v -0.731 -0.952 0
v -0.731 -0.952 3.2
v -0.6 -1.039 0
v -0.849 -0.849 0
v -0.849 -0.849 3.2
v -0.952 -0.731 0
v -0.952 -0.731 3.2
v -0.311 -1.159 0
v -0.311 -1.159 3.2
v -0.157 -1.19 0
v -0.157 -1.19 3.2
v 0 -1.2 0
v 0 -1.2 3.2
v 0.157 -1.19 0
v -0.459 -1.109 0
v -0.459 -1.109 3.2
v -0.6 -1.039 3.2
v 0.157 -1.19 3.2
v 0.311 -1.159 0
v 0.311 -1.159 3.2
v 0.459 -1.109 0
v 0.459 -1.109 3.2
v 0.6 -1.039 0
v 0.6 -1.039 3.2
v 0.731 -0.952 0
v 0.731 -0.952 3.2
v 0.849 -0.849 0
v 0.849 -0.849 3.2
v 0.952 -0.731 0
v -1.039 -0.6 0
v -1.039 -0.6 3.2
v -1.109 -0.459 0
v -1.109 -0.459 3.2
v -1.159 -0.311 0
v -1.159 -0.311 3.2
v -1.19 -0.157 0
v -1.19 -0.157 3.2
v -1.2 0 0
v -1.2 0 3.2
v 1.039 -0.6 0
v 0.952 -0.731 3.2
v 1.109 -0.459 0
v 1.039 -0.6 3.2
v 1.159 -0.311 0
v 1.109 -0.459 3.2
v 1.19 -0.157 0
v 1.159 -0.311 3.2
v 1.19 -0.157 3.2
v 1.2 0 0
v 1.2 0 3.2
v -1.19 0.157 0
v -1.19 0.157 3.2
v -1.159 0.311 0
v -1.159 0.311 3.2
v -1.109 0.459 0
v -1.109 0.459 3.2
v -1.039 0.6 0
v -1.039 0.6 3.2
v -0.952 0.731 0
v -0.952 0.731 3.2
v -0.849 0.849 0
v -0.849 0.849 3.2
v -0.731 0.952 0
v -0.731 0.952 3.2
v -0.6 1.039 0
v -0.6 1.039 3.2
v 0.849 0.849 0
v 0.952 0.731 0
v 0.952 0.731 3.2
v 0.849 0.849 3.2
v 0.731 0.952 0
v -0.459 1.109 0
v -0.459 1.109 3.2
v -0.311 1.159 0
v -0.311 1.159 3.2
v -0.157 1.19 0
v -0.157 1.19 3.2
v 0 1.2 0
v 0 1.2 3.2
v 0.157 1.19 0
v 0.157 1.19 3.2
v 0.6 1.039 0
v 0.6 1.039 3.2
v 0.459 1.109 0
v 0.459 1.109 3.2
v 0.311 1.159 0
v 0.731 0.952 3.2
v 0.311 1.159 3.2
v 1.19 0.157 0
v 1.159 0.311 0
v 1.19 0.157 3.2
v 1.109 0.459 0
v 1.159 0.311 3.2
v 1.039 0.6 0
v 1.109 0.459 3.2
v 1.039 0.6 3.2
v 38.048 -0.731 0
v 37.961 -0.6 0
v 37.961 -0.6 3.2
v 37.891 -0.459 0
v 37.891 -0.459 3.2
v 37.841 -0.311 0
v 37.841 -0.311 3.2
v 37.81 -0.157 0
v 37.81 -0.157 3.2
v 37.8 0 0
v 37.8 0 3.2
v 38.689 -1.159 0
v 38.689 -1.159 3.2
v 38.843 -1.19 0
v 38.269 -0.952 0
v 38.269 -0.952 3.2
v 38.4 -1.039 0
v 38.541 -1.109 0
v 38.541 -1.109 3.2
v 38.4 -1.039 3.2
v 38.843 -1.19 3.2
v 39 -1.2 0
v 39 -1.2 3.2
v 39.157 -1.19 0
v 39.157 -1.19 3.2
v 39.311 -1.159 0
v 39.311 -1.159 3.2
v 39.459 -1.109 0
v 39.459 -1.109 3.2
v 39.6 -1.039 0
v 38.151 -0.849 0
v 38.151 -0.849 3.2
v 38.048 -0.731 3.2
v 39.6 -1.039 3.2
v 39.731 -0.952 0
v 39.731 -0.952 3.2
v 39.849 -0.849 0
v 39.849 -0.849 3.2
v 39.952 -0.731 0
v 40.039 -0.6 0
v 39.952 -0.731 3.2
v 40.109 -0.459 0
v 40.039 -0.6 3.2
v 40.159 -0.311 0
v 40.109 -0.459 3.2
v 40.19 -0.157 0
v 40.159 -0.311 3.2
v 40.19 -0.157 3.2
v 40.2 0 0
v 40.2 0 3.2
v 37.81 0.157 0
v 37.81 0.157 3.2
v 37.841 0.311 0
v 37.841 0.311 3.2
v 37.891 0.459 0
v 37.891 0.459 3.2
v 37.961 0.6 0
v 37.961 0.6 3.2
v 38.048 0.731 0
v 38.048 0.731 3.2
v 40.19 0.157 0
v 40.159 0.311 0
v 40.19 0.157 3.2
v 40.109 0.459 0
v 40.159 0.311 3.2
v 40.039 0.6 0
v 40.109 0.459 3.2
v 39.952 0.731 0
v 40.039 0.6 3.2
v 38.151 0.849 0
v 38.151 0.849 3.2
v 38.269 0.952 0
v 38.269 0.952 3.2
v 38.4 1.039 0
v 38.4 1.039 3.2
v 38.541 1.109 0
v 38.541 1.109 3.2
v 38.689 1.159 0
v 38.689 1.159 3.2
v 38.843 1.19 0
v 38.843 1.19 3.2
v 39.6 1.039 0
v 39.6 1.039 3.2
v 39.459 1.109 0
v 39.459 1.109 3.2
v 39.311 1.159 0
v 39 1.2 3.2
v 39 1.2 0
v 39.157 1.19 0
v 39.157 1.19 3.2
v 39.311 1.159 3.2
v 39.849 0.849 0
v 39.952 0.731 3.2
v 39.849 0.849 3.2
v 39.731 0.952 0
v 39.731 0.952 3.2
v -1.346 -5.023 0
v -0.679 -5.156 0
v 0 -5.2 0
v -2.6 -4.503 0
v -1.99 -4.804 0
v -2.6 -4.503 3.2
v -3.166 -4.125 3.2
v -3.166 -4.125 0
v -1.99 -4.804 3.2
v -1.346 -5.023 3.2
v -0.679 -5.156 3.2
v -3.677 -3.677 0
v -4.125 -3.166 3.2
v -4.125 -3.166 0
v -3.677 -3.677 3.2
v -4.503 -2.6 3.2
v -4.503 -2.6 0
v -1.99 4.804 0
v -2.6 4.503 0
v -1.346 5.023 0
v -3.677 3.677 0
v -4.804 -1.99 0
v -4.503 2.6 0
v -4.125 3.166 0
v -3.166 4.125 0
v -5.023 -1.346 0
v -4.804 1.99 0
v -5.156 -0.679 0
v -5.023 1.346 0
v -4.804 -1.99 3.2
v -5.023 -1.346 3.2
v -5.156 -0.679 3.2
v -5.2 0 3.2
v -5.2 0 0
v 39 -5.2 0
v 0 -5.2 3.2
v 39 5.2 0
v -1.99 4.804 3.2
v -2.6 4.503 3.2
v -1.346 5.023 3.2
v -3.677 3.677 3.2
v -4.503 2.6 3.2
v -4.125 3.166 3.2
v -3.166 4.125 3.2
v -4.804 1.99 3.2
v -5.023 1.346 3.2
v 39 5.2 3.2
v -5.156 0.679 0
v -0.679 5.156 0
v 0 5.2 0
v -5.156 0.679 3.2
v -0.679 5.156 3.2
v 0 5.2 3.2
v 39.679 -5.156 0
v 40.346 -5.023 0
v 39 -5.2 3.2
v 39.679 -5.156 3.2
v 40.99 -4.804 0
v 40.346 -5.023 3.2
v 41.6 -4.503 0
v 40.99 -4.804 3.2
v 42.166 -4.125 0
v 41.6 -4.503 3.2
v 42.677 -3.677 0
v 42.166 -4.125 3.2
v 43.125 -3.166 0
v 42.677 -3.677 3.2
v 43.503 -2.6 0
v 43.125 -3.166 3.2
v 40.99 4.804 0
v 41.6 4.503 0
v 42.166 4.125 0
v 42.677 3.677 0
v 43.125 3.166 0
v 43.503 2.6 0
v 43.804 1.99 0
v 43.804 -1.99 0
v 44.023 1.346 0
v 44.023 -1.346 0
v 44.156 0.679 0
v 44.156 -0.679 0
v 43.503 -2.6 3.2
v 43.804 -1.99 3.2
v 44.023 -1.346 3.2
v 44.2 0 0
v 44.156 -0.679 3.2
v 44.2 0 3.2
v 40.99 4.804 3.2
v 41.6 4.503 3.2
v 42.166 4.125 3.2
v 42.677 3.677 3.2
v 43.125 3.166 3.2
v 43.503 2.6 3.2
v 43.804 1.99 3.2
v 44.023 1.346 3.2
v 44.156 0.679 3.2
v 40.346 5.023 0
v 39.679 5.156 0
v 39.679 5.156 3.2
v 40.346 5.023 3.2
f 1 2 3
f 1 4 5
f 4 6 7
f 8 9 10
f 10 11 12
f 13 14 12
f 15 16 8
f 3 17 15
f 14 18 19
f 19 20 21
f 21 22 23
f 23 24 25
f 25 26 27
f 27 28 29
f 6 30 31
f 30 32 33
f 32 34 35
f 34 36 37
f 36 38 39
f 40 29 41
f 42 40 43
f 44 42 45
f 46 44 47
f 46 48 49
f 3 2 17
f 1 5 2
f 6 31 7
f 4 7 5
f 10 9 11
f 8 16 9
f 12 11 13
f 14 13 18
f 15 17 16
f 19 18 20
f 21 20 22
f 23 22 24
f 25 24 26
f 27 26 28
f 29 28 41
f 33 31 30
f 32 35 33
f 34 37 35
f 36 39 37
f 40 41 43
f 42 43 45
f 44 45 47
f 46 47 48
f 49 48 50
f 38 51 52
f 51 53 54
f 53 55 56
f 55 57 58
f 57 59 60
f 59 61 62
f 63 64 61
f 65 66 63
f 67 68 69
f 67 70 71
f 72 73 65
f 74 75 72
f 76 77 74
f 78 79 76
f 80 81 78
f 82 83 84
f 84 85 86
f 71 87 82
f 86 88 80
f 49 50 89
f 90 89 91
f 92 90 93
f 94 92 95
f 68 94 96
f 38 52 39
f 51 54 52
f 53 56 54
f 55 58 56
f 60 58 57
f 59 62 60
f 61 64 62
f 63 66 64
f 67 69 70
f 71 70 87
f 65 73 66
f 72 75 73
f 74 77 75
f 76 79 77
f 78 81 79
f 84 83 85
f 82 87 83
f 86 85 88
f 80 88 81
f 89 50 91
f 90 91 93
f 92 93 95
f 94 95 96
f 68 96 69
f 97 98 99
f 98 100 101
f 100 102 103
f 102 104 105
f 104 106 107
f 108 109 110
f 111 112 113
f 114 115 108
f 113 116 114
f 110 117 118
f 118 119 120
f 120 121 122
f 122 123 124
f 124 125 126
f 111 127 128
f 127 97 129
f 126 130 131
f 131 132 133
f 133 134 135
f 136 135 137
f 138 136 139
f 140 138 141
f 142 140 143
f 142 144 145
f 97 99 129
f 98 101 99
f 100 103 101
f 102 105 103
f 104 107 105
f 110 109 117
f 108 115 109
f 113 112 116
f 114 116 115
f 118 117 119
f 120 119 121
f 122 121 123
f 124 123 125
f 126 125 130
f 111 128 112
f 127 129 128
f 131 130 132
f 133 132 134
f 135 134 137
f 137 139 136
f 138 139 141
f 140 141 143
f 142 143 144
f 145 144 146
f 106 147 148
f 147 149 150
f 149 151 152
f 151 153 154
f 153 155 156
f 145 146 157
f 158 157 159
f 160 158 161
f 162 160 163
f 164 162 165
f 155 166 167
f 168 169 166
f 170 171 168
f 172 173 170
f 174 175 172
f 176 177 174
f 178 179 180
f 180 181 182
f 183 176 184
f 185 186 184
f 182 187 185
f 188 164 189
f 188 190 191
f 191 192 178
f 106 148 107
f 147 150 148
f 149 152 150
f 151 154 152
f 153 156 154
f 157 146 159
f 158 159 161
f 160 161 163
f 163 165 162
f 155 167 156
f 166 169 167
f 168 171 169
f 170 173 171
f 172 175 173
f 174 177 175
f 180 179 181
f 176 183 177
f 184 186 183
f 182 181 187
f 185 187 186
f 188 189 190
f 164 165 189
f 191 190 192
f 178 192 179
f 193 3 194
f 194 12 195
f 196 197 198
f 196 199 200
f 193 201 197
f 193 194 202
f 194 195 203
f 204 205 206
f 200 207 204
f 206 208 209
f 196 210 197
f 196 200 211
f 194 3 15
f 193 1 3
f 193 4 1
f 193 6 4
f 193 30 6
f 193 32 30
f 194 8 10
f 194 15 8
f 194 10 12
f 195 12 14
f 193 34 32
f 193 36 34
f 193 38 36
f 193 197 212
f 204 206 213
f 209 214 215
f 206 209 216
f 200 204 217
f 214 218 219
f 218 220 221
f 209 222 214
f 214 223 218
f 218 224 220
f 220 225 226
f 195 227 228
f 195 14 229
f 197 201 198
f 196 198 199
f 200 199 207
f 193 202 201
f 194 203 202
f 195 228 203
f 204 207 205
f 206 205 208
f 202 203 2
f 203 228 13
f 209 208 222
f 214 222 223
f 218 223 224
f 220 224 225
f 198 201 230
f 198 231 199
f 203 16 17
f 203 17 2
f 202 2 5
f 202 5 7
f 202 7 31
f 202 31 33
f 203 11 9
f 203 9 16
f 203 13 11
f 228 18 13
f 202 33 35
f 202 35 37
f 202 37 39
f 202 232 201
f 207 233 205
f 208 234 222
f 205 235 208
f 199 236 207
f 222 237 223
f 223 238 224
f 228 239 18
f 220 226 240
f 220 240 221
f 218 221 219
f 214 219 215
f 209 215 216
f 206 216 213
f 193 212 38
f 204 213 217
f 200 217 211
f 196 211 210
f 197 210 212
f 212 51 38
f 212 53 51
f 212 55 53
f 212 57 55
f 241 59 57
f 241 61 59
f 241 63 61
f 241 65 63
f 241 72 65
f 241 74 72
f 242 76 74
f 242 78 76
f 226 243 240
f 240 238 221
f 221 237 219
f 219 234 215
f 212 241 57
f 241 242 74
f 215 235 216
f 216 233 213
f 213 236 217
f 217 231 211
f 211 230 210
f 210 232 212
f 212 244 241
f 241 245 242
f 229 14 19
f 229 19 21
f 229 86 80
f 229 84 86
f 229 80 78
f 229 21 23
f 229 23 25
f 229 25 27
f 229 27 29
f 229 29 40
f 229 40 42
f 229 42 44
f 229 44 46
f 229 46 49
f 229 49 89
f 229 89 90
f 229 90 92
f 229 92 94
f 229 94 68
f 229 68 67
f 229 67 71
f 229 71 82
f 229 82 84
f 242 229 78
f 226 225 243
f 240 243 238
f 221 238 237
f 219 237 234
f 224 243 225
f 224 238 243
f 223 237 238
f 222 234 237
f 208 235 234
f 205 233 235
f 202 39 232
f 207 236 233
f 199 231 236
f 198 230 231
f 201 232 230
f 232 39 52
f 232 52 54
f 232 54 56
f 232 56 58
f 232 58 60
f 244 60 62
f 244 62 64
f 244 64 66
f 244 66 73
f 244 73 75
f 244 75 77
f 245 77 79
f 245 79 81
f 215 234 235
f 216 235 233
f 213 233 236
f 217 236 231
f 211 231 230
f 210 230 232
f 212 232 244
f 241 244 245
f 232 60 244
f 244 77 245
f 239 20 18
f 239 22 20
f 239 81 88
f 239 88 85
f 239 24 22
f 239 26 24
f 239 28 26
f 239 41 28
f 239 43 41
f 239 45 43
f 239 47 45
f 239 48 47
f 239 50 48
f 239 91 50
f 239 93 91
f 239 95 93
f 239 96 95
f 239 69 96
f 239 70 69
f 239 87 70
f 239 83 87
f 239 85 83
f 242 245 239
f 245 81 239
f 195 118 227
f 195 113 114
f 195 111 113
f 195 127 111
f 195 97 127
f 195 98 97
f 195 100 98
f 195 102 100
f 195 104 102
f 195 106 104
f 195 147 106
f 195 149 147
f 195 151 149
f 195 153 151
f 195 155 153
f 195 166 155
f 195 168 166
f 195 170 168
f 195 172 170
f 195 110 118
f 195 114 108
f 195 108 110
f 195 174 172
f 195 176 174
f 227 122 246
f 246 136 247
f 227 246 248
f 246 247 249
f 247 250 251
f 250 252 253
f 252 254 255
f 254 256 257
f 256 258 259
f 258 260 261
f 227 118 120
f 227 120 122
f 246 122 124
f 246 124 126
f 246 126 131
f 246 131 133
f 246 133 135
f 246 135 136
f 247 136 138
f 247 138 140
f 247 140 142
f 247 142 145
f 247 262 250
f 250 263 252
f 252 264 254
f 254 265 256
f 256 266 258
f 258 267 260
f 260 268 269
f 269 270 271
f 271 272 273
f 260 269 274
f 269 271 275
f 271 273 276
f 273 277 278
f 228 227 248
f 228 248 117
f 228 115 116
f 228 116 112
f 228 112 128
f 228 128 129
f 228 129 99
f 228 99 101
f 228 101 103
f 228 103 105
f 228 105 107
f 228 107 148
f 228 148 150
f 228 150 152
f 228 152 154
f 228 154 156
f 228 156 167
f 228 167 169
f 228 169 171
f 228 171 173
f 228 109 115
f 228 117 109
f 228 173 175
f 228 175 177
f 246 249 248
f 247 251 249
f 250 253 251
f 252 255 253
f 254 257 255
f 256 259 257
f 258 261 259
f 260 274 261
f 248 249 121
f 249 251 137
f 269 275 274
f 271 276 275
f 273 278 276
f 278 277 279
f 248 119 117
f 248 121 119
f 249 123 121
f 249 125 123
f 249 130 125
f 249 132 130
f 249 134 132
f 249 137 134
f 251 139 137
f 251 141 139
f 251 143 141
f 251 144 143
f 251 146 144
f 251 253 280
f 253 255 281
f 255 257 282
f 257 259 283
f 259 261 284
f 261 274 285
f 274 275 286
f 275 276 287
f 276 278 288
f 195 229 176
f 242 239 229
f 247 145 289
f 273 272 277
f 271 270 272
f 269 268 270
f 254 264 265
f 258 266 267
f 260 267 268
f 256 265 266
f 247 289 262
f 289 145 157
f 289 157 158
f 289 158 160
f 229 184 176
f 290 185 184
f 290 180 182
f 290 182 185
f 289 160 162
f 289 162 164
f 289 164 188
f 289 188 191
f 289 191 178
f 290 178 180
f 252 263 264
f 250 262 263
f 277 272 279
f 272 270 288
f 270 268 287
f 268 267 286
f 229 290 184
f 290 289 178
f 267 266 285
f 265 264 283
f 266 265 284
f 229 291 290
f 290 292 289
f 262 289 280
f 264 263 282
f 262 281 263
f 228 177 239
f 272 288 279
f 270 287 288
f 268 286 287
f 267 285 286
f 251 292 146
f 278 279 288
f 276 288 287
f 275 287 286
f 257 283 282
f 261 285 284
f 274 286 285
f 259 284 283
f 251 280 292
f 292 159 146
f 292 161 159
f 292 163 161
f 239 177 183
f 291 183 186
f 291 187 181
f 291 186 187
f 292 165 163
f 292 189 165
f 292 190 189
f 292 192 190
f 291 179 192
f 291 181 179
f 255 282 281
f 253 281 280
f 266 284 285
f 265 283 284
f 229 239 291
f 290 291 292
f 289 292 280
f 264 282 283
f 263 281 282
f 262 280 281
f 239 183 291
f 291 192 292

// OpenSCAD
// Rigid removable dogbone. Print flat with holes vertical. No printed spline.
include <parameters.scad>

$fn = 48;
eps = 0.03;
link_length_override = link_length;
link_length_local = link_length_override;
end_radius = link_width / 2;

assert(link_length_local > 2 * end_radius + 5);
assert(link_width > pivot_hole_d + 3);

module linkage_arm() {
    difference() {
        linear_extrude(height = link_thickness)
            hull() {
                circle(r = end_radius);
                translate([link_length_local, 0]) circle(r = end_radius);
            }
        for (x = [0, link_length_local])
            translate([x, 0, -eps])
                cylinder(d = pivot_hole_d, h = link_thickness + 2 * eps);
    }
}

linkage_arm();
